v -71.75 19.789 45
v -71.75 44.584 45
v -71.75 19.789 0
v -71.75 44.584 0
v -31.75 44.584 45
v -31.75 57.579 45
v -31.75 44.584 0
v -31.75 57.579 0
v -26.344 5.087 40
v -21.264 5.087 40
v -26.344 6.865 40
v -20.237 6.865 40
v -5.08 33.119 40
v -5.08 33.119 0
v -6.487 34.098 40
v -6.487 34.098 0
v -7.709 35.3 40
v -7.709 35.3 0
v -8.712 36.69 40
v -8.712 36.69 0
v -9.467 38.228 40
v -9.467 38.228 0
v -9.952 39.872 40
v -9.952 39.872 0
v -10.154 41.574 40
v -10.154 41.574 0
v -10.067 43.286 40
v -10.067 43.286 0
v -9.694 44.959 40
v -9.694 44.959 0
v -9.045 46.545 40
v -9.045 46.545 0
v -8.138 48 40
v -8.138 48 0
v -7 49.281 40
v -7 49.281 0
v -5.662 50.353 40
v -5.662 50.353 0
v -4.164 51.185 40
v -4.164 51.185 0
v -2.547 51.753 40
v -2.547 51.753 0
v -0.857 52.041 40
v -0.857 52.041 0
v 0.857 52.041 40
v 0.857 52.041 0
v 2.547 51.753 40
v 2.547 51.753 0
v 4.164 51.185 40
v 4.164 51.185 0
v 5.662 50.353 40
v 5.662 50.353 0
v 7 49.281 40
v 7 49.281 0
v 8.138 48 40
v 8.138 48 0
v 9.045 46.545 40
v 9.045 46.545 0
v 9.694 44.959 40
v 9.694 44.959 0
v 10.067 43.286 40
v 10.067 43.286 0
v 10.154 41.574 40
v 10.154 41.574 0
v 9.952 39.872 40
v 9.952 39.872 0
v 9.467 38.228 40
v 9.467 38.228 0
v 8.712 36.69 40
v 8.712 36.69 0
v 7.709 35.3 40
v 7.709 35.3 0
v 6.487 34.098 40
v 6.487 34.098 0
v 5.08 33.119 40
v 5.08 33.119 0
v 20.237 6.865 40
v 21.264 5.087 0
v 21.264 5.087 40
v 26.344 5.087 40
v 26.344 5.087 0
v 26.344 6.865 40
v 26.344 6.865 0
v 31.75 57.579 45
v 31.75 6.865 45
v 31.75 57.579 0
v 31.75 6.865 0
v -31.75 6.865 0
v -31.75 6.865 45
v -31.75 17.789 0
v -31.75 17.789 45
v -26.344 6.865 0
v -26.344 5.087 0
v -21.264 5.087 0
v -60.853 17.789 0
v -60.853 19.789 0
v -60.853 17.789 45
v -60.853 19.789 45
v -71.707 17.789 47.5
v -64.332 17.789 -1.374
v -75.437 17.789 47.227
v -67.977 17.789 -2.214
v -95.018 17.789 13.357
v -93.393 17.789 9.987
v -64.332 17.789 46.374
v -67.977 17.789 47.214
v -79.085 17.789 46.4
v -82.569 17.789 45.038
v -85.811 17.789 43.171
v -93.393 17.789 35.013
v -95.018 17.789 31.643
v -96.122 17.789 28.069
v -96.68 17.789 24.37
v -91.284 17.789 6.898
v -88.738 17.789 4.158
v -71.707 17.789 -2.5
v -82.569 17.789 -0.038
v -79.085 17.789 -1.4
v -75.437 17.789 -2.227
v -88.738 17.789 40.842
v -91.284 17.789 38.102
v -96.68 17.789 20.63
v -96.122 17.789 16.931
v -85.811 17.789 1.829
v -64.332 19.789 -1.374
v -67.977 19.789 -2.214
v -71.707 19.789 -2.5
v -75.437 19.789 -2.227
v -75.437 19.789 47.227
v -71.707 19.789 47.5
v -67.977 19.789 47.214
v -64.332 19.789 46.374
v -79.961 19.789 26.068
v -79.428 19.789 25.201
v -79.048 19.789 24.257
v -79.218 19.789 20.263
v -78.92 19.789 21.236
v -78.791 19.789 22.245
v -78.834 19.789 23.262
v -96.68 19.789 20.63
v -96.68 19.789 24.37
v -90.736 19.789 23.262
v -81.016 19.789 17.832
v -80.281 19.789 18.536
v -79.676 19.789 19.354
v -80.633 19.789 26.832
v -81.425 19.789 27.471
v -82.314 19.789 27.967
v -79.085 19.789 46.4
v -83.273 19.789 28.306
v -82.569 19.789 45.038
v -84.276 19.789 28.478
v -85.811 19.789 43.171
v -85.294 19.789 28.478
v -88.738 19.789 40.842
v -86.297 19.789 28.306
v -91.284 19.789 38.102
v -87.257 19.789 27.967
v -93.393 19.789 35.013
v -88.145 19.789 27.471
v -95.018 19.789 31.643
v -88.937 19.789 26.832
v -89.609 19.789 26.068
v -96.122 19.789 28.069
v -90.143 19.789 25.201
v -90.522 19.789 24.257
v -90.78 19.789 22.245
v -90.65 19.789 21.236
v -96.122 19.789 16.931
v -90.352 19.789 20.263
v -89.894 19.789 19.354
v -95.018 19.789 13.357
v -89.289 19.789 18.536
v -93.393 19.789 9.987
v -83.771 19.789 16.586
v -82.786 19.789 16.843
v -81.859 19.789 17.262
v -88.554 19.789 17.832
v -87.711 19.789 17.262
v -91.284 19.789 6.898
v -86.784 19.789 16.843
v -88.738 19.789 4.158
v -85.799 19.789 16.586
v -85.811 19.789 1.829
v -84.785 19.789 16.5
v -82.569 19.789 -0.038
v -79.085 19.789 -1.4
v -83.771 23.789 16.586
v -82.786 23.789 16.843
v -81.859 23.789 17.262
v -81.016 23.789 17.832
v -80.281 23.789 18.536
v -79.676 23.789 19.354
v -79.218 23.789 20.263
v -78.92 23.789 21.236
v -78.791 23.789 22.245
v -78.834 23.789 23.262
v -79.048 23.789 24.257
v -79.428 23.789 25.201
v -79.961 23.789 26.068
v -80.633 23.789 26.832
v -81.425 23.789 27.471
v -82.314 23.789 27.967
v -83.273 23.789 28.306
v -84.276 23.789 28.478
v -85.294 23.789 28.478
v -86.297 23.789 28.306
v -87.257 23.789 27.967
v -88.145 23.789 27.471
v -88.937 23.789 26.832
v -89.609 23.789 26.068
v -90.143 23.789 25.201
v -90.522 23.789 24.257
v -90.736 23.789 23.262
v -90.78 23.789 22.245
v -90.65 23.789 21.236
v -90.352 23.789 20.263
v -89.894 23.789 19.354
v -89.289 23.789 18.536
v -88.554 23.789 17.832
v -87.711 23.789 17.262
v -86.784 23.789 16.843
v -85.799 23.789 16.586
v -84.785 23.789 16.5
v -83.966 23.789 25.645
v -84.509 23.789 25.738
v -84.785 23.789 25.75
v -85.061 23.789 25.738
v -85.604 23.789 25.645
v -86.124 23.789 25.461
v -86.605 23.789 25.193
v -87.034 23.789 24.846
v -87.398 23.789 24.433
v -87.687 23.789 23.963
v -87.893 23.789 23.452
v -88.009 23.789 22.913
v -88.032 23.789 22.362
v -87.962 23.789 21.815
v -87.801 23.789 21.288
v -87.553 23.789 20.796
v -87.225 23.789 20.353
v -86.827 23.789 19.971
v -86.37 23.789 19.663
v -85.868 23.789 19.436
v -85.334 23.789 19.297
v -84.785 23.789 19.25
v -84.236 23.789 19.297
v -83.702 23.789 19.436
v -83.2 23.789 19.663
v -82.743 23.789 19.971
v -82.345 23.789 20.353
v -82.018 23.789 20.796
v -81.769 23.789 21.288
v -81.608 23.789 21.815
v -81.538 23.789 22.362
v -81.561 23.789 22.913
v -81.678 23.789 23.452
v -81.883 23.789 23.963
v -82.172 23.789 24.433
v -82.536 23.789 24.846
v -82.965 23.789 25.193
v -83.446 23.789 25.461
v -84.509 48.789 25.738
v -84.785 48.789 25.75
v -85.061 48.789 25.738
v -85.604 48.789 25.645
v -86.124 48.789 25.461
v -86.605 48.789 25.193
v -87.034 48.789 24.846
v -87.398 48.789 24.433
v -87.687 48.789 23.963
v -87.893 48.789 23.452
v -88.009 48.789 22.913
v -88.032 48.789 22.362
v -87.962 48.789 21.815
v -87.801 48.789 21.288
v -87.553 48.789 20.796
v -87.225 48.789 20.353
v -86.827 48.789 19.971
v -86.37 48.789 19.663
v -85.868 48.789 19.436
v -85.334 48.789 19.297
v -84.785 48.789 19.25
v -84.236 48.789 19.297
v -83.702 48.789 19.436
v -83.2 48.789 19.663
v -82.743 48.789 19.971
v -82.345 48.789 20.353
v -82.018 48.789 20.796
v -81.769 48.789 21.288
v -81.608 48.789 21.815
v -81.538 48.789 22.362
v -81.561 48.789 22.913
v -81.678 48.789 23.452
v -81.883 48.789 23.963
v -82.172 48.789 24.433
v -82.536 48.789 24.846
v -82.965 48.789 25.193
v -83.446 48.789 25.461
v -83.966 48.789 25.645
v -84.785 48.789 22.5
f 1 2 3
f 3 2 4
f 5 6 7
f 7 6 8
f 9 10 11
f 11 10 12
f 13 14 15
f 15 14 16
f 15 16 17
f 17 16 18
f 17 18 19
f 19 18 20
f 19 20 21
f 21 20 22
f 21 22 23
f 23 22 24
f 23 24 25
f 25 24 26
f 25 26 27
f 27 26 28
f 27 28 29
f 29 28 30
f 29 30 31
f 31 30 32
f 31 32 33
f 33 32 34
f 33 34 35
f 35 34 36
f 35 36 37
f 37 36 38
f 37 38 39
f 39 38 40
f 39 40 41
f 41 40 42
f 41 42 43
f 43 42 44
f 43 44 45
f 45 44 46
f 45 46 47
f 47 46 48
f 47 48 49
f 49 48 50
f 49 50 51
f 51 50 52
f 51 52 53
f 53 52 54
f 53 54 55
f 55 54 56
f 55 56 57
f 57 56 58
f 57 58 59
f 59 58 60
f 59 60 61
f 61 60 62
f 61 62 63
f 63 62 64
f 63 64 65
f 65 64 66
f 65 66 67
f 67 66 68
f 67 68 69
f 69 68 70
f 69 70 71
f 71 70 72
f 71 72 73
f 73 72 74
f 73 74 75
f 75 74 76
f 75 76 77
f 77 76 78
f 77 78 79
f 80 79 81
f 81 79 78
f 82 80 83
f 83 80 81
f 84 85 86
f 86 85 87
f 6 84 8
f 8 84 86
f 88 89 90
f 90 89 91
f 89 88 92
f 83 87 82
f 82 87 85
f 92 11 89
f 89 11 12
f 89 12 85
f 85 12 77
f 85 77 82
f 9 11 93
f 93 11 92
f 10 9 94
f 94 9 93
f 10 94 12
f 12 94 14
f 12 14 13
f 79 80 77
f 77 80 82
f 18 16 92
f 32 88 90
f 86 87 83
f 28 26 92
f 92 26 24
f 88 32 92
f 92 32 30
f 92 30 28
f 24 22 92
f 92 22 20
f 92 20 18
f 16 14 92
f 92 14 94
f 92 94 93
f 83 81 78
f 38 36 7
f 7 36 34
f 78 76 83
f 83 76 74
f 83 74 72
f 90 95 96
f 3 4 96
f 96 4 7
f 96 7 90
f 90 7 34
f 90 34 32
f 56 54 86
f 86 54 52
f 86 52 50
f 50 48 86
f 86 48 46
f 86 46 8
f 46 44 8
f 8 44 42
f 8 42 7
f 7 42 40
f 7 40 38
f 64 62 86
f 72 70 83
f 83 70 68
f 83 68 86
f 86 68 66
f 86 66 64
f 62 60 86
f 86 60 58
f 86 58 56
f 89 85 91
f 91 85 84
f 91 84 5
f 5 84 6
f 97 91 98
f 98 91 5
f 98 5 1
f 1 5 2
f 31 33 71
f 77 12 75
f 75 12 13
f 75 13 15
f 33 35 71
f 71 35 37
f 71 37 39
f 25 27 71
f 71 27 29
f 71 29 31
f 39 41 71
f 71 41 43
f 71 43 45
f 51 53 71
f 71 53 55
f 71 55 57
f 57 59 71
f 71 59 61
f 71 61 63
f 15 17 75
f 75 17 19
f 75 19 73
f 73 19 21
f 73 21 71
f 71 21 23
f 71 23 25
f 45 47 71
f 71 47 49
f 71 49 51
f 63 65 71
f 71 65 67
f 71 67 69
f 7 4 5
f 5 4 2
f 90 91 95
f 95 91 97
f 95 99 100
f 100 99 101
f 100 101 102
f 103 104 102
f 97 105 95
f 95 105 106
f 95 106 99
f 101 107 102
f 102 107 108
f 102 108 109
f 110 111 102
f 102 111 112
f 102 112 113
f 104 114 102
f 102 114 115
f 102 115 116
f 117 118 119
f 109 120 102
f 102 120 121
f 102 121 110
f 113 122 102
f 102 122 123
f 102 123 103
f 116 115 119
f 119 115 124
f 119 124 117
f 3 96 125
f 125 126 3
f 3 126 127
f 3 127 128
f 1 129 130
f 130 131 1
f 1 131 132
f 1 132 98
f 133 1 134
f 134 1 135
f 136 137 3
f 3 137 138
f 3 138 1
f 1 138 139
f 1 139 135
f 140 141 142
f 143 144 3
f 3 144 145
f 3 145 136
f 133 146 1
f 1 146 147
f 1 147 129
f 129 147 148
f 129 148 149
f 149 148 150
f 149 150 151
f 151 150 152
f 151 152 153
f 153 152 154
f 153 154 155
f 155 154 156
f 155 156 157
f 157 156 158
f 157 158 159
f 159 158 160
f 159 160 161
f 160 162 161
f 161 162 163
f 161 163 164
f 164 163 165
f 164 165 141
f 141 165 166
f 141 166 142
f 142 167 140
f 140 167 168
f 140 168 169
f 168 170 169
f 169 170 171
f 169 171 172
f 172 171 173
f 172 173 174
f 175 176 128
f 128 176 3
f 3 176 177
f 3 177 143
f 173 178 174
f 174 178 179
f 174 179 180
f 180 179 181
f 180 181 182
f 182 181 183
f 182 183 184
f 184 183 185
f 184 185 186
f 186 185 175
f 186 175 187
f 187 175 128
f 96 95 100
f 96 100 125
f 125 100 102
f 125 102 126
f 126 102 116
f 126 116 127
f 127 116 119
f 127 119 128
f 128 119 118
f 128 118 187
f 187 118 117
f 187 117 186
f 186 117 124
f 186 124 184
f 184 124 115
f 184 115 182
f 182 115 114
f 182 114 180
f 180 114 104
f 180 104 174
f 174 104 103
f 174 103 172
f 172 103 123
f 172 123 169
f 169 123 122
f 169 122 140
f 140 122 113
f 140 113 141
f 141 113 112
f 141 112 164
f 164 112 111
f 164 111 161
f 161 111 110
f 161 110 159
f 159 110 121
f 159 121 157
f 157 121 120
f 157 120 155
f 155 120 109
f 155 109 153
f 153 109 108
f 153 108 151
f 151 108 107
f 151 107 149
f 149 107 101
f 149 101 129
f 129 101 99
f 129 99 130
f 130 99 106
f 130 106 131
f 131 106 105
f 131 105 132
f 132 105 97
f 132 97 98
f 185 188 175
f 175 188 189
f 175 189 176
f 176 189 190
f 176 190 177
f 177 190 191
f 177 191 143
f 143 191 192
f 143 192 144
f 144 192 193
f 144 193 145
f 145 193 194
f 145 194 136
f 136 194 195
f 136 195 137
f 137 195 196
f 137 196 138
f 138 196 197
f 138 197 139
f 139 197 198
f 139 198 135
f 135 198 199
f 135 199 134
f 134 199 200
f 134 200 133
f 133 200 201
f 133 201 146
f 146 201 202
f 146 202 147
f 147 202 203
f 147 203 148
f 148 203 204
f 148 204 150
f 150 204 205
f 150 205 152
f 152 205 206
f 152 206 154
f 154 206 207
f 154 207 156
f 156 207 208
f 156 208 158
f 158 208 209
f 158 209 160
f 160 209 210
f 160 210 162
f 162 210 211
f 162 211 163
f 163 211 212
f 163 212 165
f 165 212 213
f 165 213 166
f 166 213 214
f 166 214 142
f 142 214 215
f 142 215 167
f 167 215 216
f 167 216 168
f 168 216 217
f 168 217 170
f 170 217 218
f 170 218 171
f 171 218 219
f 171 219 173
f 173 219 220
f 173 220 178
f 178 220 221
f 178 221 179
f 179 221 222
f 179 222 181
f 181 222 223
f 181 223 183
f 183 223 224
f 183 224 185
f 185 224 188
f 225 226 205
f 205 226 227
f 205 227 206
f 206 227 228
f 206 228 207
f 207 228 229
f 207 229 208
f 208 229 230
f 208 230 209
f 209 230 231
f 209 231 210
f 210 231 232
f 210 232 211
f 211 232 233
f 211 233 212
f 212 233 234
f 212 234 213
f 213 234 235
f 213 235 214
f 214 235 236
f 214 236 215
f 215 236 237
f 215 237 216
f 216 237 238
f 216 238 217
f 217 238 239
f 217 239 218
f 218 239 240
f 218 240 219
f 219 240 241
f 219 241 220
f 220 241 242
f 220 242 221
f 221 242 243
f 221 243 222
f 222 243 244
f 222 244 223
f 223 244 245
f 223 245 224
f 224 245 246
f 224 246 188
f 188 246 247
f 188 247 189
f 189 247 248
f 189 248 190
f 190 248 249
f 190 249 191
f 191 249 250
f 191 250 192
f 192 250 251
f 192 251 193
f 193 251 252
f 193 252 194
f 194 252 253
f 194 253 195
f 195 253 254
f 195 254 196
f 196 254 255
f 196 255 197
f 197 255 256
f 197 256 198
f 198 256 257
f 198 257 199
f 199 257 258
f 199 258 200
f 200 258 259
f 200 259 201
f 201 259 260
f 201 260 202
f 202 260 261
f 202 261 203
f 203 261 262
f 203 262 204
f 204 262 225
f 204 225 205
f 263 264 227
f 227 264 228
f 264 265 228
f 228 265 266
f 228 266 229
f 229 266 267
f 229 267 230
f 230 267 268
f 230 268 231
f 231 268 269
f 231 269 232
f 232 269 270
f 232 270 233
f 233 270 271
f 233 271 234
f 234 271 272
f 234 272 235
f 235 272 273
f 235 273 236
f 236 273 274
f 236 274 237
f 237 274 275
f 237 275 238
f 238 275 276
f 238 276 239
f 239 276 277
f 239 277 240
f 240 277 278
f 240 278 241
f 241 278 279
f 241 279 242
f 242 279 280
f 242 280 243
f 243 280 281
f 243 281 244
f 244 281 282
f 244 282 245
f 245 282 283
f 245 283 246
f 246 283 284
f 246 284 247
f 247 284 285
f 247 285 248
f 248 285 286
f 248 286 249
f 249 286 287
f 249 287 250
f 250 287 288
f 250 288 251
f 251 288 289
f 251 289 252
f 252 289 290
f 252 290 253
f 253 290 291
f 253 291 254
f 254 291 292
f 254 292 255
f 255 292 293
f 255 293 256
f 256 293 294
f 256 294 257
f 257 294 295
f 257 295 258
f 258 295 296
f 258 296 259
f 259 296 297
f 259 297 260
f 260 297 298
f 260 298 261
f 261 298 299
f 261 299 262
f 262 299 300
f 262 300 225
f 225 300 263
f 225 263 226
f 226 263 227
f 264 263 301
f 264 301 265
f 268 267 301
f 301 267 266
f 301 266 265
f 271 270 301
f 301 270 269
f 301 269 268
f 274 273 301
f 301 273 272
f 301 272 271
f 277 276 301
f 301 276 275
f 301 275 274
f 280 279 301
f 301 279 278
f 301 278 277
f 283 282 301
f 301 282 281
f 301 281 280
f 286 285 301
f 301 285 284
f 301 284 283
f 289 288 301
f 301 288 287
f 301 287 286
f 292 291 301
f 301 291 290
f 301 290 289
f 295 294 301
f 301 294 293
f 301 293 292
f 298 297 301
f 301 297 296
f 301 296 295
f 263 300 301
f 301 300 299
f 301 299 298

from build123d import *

# Parameters (mm, degrees)
BOSS_EXTRUDE2_DEPTH = 40
SKETCH3_W           = 63.5
SKETCH3_H           = 50.713358162
BOSS_EXTRUDE3_DEPTH = 5
SKETCH5_W           = 40
SKETCH5_H           = 26.795354342
BOSS_EXTRUDE4_DEPTH = 45
SKETCH7_R           = 25
BOSS_EXTRUDE6_DEPTH = 2
SKETCH11_R          = 6
BOSS_EXTRUDE7_DEPTH = 6
SKETCH13_R          = 3.25
BOSS_EXTRUDE8_DEPTH = 25


with BuildPart() as part:
    # Sketch1 → Boss-Extrude2 (new body)
    with BuildSketch(Plane.XY):
        with BuildLine():
            ThreePointArc((5.08, 33.118635635), (0, 52.077453737), (-5.08, 33.118635635))
            Line((-5.08, 33.118635635), (-21.263810414, 5.087453737))
            Line((-21.263810414, 5.087453737), (-26.343810414, 5.087453737))
            Line((-26.343810414, 5.087453737), (-26.343810414, 6.865453737))
            Line((-26.343810414, 6.865453737), (-31.75, 6.865453737))
            Line((-31.75, 6.865453737), (-31.75, 57.578811899))
            Line((-31.75, 57.578811899), (31.75, 57.578811899))
            Line((31.75, 57.578811899), (31.75, 6.865453737))
            Line((31.75, 6.865453737), (26.343810414, 6.865453737))
            Line((26.343810414, 6.865453737), (26.343810414, 5.087453737))
            Line((26.343810414, 5.087453737), (21.263810414, 5.087453737))
            Line((21.263810414, 5.087453737), (5.08, 33.118635635))
        make_face()
    extrude(amount=BOSS_EXTRUDE2_DEPTH)

    # Sketch3 → Boss-Extrude3 (add)
    with BuildSketch(Plane.XY.offset(40)):
        with Locations((0, 32.222132818)):
            Rectangle(SKETCH3_W, SKETCH3_H)
    extrude(amount=BOSS_EXTRUDE3_DEPTH)

    # Sketch5 → Boss-Extrude4 (add)
    with BuildSketch(Plane.XY.offset(45)):
        with Locations((-51.75, 31.186442922)):
            Rectangle(SKETCH5_W, SKETCH5_H)
    extrude(amount=-BOSS_EXTRUDE4_DEPTH)

    # Sketch7 → Boss-Extrude6 (add)
    with BuildSketch(Plane.XZ.offset(-17.788765751)):
        with Locations((-71.75, 22.5)):
            Circle(SKETCH7_R)
    extrude(amount=-BOSS_EXTRUDE6_DEPTH)

    # Sketch11 → Boss-Extrude7 (add)
    with BuildSketch(Plane(origin=(0, 17.788765751, 0), x_dir=(-1, 0, 0), z_dir=(0, -1, 0))):
        with Locations(Location((84.7850913, -22.5, 0), (0, 0, 90))):
            Circle(SKETCH11_R)
    extrude(amount=-BOSS_EXTRUDE7_DEPTH)

    # Sketch13 → Boss-Extrude8 (add)
    with BuildSketch(Plane(origin=(0, 23.788765751, 0), x_dir=(1, 0, 0), z_dir=(0, 1, 0))):
        with Locations(Location((-84.7850913, -22.5, 0), (0, 0, 270))):
            Circle(SKETCH13_R)
    extrude(amount=BOSS_EXTRUDE8_DEPTH)


solid = part.part
